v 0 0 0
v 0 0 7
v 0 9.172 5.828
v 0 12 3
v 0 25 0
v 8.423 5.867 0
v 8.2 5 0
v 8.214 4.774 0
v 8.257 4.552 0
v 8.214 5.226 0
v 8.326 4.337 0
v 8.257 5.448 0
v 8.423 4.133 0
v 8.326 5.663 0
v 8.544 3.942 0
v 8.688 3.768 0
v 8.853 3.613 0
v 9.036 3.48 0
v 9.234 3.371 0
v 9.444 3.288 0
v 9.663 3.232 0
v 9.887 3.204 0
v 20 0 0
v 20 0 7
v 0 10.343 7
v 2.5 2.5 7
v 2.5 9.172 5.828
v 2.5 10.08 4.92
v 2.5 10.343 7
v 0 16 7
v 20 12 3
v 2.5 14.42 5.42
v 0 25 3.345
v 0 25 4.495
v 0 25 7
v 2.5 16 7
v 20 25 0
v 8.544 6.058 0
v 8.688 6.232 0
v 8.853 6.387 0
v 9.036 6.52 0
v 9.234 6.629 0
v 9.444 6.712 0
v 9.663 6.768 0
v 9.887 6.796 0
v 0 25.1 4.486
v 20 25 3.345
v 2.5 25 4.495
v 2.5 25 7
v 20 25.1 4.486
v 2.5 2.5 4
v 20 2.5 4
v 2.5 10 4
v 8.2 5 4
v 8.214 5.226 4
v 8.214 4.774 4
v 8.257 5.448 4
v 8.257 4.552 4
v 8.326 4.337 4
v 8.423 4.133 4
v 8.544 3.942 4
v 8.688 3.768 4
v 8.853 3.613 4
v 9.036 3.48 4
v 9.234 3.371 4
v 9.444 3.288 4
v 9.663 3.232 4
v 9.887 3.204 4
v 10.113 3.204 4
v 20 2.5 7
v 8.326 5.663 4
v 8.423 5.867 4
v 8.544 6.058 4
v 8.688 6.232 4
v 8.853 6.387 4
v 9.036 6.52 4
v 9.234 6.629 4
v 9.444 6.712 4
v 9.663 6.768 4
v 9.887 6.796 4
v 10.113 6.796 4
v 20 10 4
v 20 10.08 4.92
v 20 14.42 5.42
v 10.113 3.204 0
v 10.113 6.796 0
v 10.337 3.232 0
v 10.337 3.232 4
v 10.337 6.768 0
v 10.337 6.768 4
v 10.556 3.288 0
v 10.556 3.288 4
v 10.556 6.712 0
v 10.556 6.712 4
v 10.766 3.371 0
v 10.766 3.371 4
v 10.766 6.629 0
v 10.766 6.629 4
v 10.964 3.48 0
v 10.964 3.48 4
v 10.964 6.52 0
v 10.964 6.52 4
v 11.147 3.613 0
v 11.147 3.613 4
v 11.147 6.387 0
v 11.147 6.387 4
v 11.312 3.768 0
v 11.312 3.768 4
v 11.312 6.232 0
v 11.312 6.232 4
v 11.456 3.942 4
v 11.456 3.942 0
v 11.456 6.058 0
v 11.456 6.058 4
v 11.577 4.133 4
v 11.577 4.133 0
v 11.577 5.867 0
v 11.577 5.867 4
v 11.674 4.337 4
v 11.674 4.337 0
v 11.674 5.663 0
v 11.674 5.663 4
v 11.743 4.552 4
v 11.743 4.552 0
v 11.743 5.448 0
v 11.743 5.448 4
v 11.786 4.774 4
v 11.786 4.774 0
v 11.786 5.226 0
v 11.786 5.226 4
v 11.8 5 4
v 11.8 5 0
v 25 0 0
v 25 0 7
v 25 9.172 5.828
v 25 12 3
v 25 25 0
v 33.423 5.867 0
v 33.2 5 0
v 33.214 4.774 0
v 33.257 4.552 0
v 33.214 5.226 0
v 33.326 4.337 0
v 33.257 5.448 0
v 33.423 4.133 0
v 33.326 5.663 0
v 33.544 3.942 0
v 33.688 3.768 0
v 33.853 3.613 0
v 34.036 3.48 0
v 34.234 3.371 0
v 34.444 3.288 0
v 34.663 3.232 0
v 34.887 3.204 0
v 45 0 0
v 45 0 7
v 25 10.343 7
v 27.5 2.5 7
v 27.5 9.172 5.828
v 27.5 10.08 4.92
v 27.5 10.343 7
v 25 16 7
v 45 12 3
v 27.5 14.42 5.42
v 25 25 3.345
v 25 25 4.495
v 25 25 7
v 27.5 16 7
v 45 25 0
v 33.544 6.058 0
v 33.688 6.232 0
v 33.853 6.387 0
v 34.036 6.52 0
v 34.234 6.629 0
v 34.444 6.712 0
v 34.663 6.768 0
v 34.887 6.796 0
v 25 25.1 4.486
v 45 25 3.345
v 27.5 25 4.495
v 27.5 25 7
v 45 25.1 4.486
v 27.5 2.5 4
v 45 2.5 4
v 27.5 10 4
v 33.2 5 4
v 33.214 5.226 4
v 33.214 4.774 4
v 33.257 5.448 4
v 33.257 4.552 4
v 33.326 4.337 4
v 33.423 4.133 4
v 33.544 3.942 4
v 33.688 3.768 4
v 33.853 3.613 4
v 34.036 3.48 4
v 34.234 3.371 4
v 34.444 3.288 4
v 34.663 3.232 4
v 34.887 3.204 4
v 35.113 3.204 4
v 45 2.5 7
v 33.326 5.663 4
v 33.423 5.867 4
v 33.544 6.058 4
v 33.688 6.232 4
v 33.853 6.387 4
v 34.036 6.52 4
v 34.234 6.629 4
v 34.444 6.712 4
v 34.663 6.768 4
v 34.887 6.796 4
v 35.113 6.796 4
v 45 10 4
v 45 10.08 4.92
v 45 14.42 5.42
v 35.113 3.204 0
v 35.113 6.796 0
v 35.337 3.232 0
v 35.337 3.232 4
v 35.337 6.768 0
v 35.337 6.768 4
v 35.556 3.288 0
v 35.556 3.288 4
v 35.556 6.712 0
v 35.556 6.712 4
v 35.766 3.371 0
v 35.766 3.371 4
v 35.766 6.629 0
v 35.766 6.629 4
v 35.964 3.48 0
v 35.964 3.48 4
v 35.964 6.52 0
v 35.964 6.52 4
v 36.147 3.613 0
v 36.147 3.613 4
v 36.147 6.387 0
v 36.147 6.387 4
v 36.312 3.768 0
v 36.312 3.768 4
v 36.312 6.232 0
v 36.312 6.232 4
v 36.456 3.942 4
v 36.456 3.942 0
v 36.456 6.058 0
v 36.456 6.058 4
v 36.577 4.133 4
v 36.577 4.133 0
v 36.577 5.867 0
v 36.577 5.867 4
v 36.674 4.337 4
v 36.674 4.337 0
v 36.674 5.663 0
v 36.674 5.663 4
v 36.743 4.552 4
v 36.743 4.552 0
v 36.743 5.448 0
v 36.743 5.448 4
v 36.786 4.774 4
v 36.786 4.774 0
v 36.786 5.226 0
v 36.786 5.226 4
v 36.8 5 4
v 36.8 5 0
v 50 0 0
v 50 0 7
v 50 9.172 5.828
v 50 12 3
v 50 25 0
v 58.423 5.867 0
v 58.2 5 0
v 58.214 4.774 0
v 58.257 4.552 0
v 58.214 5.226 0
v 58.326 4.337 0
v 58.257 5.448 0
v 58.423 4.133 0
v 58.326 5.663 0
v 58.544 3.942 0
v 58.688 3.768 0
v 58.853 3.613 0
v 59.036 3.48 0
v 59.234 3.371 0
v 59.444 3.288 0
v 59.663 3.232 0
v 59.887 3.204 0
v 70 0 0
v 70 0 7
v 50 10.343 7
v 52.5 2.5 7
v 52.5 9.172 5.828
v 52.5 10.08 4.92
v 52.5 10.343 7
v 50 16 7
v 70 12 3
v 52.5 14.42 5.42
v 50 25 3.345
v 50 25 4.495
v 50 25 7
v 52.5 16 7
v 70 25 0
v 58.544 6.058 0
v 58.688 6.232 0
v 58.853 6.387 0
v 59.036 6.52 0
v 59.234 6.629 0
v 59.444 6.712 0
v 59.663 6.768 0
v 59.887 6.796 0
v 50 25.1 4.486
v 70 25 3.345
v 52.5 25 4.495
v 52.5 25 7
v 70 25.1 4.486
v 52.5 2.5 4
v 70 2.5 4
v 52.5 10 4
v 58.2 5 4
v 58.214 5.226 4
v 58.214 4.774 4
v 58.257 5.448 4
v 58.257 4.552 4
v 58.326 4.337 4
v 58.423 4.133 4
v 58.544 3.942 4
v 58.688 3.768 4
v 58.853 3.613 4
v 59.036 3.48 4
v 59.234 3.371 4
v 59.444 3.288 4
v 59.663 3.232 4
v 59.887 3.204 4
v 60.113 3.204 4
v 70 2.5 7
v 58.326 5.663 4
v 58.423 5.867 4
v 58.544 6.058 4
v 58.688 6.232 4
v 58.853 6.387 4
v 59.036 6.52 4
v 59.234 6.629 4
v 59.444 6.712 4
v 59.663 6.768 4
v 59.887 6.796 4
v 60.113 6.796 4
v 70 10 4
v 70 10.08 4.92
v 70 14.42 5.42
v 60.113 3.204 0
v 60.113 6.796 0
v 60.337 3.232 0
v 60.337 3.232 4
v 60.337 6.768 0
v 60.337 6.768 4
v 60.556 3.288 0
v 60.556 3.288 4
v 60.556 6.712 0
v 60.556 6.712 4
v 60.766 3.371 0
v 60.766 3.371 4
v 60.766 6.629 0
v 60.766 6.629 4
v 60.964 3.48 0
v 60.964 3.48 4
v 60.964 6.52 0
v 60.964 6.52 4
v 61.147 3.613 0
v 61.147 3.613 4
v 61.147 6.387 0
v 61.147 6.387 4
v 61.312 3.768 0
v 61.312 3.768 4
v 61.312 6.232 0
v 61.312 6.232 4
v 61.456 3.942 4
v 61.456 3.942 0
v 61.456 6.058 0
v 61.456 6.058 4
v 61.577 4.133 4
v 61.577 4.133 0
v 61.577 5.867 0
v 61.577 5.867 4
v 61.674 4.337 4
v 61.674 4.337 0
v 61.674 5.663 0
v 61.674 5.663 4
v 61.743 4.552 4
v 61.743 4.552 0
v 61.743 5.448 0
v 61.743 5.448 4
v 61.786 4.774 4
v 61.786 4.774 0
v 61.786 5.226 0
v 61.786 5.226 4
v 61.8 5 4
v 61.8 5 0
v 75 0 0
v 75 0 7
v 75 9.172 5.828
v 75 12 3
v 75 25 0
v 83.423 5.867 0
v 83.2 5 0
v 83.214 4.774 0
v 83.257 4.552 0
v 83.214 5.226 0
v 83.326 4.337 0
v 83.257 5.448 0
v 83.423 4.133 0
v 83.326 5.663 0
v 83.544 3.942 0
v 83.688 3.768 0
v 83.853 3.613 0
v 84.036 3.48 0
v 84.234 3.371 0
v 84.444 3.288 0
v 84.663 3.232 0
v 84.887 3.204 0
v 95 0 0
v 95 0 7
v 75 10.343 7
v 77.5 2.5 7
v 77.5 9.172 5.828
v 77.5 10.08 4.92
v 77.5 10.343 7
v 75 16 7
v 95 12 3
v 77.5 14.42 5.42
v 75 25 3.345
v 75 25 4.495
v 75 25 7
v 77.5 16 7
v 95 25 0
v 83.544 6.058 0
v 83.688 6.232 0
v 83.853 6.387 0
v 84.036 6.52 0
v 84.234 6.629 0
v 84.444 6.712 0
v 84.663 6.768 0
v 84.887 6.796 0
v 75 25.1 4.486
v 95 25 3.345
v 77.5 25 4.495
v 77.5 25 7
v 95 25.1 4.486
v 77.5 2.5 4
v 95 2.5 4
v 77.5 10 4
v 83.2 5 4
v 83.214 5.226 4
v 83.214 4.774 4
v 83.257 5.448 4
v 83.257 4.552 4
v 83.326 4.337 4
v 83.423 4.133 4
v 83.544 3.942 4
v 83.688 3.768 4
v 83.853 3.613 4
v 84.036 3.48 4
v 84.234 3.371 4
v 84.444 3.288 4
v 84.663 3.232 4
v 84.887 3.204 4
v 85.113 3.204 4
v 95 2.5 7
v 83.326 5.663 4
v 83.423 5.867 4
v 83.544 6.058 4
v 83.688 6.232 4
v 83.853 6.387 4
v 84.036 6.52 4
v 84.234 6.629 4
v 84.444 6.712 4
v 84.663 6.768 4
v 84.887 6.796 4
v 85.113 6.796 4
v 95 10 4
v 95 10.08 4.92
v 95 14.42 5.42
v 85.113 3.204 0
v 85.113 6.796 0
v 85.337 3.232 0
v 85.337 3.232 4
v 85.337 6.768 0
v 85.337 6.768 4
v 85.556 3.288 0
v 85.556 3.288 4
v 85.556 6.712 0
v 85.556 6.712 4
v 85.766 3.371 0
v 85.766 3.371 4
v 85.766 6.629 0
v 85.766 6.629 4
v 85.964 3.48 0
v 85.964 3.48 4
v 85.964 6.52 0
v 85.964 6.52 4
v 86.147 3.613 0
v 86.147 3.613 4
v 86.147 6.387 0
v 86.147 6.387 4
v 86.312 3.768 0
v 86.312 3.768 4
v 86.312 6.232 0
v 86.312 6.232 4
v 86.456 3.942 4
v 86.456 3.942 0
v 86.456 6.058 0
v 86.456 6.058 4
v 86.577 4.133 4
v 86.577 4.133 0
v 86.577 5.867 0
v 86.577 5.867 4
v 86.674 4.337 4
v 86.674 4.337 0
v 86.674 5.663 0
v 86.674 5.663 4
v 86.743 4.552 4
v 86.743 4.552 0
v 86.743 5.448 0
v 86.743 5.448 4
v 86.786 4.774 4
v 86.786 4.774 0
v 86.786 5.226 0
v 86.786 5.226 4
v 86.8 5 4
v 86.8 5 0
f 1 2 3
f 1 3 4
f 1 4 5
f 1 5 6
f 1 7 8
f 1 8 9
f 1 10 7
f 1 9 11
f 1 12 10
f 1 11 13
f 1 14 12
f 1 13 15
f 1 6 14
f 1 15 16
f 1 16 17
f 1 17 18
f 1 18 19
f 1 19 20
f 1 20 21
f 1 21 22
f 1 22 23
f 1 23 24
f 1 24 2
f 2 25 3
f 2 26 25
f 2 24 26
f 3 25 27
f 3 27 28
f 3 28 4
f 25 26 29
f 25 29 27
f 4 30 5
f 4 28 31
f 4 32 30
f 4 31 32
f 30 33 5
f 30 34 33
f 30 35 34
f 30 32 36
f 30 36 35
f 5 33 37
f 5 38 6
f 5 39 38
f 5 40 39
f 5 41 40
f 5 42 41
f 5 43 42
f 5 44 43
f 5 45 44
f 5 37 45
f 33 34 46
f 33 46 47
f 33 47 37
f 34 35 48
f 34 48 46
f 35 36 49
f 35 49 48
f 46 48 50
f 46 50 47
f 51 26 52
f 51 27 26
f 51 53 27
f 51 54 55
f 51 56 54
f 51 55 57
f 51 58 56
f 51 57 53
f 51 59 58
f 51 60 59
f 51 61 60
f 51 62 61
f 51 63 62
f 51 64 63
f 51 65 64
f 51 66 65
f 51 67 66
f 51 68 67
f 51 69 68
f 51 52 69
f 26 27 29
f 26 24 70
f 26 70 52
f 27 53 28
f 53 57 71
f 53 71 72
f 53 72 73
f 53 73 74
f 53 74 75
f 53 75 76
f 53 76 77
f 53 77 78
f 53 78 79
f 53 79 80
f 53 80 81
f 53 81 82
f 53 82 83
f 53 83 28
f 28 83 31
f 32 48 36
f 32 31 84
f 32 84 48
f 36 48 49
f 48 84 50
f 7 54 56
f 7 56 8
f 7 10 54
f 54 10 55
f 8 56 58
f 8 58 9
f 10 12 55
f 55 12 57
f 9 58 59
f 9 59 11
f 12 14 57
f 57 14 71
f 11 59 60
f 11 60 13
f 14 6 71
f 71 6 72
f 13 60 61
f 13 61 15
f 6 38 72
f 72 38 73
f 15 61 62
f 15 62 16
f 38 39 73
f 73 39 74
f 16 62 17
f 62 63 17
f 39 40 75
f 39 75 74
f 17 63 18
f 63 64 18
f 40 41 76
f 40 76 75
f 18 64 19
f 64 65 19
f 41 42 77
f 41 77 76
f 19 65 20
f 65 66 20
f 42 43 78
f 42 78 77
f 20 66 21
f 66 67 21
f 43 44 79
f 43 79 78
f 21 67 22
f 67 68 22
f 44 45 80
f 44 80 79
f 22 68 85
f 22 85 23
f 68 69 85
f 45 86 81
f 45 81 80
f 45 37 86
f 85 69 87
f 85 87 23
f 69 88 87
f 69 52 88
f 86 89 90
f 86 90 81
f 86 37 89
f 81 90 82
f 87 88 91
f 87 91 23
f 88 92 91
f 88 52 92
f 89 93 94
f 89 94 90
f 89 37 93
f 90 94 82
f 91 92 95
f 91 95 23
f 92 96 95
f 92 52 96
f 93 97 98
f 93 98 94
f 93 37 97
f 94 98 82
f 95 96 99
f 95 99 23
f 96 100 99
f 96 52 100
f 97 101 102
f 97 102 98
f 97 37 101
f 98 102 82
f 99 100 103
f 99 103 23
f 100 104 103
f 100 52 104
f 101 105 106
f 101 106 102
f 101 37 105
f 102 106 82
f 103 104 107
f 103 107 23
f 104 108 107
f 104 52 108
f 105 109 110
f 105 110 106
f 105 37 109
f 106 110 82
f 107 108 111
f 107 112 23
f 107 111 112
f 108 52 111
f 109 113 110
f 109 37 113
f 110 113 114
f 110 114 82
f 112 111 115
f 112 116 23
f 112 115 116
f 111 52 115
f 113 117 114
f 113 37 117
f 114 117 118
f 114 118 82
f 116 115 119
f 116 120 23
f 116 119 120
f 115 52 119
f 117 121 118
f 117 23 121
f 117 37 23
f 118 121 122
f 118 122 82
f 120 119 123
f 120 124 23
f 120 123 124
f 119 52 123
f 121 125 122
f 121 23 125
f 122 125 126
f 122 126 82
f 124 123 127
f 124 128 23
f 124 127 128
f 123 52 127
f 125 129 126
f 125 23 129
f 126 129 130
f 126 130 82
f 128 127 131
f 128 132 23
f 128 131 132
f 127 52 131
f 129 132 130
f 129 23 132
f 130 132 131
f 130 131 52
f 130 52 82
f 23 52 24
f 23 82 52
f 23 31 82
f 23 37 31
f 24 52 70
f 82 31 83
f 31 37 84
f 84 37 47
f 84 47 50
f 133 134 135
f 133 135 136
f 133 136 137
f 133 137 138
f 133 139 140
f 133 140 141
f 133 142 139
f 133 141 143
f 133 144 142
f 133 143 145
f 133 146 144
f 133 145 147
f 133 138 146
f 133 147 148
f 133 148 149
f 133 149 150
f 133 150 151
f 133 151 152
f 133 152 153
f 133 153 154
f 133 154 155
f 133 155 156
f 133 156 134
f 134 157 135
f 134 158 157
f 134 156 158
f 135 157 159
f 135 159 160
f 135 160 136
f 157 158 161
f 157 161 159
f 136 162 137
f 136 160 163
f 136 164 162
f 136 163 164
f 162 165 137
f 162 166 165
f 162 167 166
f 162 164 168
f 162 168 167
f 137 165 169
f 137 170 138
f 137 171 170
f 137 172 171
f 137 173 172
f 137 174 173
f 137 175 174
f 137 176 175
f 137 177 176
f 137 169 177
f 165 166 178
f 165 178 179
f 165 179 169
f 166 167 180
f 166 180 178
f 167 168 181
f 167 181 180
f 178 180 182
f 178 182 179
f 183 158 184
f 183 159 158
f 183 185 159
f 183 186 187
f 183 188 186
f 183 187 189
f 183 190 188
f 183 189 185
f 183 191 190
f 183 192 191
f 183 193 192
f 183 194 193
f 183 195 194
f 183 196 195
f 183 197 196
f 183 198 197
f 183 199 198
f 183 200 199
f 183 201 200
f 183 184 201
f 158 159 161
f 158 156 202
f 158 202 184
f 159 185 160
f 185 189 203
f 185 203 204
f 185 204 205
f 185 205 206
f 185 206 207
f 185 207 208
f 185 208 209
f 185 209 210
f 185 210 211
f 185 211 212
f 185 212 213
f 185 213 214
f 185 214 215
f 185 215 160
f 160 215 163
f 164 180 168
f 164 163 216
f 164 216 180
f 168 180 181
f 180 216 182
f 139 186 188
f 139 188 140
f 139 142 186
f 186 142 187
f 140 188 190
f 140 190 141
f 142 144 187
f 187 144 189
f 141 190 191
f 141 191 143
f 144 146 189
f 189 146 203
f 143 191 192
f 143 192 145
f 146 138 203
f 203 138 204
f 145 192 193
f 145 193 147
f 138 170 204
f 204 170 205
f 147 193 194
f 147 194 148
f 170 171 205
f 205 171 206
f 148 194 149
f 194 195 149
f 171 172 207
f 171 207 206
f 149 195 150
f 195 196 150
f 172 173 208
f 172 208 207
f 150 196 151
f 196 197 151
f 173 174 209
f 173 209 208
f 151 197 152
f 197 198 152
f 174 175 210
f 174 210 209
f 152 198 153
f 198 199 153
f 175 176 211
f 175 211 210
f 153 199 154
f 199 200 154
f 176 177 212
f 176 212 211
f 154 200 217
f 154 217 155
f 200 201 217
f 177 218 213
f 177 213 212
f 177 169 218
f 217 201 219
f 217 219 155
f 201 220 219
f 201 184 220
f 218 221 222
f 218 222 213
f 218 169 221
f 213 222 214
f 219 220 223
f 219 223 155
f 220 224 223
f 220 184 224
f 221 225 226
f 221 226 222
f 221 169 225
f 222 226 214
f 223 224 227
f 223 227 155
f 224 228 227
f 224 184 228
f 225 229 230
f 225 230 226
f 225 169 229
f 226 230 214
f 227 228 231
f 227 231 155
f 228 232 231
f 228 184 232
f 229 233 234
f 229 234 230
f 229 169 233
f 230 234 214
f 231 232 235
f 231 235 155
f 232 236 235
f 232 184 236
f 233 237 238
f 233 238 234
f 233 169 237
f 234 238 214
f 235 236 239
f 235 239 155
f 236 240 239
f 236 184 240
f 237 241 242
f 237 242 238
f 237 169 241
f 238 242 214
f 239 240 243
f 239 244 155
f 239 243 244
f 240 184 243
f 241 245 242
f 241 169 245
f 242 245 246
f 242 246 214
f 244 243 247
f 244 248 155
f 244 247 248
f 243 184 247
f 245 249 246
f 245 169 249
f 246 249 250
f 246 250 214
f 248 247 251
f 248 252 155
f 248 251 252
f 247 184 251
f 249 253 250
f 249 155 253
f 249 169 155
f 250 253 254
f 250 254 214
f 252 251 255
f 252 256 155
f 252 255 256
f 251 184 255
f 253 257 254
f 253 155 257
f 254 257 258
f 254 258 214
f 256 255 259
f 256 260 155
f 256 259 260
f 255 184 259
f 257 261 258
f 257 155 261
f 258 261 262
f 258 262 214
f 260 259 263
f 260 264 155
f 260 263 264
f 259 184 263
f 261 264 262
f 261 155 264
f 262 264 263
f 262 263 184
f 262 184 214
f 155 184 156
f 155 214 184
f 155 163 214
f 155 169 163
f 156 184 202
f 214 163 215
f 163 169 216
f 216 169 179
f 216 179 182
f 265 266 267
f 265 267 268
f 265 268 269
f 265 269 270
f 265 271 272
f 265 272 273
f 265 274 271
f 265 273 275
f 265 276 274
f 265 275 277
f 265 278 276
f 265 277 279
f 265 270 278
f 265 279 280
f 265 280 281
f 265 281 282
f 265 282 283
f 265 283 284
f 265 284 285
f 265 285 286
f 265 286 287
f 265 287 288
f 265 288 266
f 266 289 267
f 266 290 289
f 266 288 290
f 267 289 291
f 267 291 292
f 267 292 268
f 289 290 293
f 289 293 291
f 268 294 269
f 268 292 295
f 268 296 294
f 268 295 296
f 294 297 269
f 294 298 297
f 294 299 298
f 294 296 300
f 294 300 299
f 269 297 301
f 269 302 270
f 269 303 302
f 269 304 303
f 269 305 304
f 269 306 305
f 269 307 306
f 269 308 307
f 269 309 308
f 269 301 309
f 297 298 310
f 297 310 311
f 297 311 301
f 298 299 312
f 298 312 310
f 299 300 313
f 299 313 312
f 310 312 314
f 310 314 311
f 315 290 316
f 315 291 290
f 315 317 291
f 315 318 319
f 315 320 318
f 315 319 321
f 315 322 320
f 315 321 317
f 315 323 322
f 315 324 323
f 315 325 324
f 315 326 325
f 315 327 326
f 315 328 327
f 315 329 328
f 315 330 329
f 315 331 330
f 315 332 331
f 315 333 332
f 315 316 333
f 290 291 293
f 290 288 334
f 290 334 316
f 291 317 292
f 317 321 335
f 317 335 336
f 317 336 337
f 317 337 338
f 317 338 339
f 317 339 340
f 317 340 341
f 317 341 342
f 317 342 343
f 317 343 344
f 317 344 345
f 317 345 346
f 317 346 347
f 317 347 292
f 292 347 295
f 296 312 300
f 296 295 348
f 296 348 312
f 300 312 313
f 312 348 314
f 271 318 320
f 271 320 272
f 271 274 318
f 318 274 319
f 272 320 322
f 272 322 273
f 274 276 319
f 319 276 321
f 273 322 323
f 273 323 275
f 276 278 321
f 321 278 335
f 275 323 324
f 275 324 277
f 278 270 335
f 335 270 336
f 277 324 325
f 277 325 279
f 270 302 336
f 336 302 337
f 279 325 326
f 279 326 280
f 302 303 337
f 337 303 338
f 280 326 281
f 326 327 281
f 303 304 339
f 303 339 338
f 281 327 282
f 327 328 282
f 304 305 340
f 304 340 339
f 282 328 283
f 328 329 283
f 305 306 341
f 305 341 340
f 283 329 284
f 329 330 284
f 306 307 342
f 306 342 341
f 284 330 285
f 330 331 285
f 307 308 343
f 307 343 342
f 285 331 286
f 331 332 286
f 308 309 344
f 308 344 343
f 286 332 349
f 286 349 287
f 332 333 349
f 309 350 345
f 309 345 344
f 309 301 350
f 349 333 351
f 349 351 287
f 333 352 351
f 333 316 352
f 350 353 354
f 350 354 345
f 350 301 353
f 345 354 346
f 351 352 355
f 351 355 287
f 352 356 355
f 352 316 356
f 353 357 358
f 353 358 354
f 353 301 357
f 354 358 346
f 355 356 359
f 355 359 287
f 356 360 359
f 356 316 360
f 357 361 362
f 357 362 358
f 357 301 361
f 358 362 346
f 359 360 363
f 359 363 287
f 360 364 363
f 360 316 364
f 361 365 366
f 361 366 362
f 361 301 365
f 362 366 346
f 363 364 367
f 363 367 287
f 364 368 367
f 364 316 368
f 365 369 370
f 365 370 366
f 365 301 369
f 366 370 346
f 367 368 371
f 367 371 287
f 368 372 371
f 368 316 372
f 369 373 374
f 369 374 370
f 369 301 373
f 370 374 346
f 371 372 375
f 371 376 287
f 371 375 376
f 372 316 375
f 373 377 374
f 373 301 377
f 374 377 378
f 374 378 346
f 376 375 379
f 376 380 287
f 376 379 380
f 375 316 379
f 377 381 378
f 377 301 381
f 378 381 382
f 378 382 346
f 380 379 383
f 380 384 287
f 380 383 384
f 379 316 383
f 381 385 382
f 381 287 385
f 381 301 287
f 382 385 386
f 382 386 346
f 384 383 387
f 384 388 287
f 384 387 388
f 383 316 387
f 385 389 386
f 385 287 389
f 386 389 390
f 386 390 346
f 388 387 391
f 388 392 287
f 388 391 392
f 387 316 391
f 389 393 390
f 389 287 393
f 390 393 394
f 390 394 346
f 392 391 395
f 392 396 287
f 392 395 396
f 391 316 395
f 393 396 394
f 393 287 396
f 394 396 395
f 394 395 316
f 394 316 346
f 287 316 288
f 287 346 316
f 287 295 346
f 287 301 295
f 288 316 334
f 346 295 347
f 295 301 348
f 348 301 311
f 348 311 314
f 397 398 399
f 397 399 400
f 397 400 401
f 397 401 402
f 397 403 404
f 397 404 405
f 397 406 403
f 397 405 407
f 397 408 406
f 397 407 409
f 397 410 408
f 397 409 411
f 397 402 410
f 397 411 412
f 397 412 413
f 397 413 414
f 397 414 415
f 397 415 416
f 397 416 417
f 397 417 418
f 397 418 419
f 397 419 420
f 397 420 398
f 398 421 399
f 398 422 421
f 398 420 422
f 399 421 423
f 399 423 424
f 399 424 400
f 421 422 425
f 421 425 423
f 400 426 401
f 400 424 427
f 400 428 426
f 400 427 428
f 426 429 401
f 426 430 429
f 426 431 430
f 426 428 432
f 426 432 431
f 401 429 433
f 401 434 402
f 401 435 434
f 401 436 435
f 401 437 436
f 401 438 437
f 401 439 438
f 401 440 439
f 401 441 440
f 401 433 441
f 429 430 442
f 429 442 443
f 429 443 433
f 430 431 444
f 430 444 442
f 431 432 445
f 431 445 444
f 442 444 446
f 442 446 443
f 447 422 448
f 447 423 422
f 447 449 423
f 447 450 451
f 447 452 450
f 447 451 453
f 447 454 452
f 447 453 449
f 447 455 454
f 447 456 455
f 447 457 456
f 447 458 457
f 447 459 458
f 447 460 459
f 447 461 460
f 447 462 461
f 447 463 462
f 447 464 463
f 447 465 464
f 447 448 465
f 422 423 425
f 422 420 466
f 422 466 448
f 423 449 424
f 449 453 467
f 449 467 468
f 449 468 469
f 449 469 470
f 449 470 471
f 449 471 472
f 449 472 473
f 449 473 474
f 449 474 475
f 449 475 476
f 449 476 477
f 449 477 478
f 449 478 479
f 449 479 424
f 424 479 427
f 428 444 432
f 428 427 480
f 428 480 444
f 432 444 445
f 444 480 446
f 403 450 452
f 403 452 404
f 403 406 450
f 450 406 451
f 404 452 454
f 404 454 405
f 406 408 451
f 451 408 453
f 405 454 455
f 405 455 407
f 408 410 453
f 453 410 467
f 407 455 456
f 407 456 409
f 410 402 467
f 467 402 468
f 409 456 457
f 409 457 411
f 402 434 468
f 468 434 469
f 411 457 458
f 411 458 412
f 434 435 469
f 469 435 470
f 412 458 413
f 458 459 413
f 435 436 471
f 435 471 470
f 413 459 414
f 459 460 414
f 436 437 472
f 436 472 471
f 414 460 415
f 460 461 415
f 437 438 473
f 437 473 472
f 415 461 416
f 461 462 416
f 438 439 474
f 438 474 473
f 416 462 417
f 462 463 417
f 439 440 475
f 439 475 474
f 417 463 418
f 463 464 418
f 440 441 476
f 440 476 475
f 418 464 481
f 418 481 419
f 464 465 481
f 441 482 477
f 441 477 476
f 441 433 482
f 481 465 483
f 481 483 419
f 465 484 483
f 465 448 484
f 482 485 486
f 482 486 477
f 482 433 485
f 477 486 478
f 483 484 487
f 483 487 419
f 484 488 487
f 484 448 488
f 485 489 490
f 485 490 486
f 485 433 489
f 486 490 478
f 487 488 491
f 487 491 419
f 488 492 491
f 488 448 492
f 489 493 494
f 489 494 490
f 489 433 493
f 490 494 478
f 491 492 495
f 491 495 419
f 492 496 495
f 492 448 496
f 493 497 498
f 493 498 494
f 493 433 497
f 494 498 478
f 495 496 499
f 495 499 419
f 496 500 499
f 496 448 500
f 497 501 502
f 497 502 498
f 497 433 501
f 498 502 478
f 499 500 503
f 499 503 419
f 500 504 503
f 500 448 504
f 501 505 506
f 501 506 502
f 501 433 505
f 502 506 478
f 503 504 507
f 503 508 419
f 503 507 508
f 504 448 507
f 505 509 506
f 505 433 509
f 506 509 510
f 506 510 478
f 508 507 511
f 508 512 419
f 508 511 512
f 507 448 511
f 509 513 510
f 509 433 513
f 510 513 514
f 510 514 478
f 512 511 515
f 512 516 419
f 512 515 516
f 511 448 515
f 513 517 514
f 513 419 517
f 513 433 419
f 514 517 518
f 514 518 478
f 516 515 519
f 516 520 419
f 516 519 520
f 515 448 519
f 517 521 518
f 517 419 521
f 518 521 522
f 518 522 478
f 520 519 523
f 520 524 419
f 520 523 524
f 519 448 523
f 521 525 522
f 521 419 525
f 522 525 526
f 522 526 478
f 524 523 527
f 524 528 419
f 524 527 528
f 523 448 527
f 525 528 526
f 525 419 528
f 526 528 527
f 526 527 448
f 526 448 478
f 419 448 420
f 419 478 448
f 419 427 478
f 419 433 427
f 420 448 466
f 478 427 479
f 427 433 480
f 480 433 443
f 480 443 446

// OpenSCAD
/*
  =============================================================================
  08_Clips_Fixacao_Papel.scad - Clips de Fixação Rápida de Papel A5 (R$ 0,00)
  =============================================================================
  Peças impressas ultraleves (4x) para prender o papel A5 firmemente na mesa/MDF.
  Evita que o papel deslize, dobre ou saia do lugar durante a escrita/desenho.
  Possui marcador fiducial de canto (L-shape) para referência óptica de visão.
*/

include <00_Parametros.scad>;

module clip_fixacao_papel() {
  clip_w = 20.0;
  clip_l = 25.0;
  clip_h = 4.0;

  difference() {
    union() {
      // Base plana do clip
      cube([clip_w, clip_l, clip_h], center=false);

      // Aba superior flexível de pressão sobre o papel
      translate([0, 10.0, clip_h])
        rotate([-5, 0, 0])
          cube([clip_w, 15.0, 1.8], center=false);

      // Canto de alinhamento L-shape para papel A5
      translate([0, 0, clip_h])
        cube([2.5, clip_l, 3.0], center=false);
      translate([0, 0, clip_h])
        cube([clip_w, 2.5, 3.0], center=false);
    }

    // Furo para fixação por parafuso M3/M4 ou fita na bancada
    translate([clip_w/2, 5.0, -EPS])
      cylinder(r=1.8, h=clip_h + 4.0, center=false);

    // Entrada autoportante: face inferior a 45 graus, adequada a FDM sem suporte.
    translate([-EPS, 12.0, clip_h - 1.0])
      rotate([45, 0, 0])
        cube([clip_w + (EPS * 2), 10.0, 4.0], center=false);
  }
}

module conjunto_4x_clips_papel() {
  translate([0, 0, 0])   clip_fixacao_papel();
  translate([25, 0, 0])  clip_fixacao_papel();
  translate([50, 0, 0])  clip_fixacao_papel();
  translate([75, 0, 0])  clip_fixacao_papel();
}

// Renderiza os 4 clips de papel para impressão FDM
conjunto_4x_clips_papel();
